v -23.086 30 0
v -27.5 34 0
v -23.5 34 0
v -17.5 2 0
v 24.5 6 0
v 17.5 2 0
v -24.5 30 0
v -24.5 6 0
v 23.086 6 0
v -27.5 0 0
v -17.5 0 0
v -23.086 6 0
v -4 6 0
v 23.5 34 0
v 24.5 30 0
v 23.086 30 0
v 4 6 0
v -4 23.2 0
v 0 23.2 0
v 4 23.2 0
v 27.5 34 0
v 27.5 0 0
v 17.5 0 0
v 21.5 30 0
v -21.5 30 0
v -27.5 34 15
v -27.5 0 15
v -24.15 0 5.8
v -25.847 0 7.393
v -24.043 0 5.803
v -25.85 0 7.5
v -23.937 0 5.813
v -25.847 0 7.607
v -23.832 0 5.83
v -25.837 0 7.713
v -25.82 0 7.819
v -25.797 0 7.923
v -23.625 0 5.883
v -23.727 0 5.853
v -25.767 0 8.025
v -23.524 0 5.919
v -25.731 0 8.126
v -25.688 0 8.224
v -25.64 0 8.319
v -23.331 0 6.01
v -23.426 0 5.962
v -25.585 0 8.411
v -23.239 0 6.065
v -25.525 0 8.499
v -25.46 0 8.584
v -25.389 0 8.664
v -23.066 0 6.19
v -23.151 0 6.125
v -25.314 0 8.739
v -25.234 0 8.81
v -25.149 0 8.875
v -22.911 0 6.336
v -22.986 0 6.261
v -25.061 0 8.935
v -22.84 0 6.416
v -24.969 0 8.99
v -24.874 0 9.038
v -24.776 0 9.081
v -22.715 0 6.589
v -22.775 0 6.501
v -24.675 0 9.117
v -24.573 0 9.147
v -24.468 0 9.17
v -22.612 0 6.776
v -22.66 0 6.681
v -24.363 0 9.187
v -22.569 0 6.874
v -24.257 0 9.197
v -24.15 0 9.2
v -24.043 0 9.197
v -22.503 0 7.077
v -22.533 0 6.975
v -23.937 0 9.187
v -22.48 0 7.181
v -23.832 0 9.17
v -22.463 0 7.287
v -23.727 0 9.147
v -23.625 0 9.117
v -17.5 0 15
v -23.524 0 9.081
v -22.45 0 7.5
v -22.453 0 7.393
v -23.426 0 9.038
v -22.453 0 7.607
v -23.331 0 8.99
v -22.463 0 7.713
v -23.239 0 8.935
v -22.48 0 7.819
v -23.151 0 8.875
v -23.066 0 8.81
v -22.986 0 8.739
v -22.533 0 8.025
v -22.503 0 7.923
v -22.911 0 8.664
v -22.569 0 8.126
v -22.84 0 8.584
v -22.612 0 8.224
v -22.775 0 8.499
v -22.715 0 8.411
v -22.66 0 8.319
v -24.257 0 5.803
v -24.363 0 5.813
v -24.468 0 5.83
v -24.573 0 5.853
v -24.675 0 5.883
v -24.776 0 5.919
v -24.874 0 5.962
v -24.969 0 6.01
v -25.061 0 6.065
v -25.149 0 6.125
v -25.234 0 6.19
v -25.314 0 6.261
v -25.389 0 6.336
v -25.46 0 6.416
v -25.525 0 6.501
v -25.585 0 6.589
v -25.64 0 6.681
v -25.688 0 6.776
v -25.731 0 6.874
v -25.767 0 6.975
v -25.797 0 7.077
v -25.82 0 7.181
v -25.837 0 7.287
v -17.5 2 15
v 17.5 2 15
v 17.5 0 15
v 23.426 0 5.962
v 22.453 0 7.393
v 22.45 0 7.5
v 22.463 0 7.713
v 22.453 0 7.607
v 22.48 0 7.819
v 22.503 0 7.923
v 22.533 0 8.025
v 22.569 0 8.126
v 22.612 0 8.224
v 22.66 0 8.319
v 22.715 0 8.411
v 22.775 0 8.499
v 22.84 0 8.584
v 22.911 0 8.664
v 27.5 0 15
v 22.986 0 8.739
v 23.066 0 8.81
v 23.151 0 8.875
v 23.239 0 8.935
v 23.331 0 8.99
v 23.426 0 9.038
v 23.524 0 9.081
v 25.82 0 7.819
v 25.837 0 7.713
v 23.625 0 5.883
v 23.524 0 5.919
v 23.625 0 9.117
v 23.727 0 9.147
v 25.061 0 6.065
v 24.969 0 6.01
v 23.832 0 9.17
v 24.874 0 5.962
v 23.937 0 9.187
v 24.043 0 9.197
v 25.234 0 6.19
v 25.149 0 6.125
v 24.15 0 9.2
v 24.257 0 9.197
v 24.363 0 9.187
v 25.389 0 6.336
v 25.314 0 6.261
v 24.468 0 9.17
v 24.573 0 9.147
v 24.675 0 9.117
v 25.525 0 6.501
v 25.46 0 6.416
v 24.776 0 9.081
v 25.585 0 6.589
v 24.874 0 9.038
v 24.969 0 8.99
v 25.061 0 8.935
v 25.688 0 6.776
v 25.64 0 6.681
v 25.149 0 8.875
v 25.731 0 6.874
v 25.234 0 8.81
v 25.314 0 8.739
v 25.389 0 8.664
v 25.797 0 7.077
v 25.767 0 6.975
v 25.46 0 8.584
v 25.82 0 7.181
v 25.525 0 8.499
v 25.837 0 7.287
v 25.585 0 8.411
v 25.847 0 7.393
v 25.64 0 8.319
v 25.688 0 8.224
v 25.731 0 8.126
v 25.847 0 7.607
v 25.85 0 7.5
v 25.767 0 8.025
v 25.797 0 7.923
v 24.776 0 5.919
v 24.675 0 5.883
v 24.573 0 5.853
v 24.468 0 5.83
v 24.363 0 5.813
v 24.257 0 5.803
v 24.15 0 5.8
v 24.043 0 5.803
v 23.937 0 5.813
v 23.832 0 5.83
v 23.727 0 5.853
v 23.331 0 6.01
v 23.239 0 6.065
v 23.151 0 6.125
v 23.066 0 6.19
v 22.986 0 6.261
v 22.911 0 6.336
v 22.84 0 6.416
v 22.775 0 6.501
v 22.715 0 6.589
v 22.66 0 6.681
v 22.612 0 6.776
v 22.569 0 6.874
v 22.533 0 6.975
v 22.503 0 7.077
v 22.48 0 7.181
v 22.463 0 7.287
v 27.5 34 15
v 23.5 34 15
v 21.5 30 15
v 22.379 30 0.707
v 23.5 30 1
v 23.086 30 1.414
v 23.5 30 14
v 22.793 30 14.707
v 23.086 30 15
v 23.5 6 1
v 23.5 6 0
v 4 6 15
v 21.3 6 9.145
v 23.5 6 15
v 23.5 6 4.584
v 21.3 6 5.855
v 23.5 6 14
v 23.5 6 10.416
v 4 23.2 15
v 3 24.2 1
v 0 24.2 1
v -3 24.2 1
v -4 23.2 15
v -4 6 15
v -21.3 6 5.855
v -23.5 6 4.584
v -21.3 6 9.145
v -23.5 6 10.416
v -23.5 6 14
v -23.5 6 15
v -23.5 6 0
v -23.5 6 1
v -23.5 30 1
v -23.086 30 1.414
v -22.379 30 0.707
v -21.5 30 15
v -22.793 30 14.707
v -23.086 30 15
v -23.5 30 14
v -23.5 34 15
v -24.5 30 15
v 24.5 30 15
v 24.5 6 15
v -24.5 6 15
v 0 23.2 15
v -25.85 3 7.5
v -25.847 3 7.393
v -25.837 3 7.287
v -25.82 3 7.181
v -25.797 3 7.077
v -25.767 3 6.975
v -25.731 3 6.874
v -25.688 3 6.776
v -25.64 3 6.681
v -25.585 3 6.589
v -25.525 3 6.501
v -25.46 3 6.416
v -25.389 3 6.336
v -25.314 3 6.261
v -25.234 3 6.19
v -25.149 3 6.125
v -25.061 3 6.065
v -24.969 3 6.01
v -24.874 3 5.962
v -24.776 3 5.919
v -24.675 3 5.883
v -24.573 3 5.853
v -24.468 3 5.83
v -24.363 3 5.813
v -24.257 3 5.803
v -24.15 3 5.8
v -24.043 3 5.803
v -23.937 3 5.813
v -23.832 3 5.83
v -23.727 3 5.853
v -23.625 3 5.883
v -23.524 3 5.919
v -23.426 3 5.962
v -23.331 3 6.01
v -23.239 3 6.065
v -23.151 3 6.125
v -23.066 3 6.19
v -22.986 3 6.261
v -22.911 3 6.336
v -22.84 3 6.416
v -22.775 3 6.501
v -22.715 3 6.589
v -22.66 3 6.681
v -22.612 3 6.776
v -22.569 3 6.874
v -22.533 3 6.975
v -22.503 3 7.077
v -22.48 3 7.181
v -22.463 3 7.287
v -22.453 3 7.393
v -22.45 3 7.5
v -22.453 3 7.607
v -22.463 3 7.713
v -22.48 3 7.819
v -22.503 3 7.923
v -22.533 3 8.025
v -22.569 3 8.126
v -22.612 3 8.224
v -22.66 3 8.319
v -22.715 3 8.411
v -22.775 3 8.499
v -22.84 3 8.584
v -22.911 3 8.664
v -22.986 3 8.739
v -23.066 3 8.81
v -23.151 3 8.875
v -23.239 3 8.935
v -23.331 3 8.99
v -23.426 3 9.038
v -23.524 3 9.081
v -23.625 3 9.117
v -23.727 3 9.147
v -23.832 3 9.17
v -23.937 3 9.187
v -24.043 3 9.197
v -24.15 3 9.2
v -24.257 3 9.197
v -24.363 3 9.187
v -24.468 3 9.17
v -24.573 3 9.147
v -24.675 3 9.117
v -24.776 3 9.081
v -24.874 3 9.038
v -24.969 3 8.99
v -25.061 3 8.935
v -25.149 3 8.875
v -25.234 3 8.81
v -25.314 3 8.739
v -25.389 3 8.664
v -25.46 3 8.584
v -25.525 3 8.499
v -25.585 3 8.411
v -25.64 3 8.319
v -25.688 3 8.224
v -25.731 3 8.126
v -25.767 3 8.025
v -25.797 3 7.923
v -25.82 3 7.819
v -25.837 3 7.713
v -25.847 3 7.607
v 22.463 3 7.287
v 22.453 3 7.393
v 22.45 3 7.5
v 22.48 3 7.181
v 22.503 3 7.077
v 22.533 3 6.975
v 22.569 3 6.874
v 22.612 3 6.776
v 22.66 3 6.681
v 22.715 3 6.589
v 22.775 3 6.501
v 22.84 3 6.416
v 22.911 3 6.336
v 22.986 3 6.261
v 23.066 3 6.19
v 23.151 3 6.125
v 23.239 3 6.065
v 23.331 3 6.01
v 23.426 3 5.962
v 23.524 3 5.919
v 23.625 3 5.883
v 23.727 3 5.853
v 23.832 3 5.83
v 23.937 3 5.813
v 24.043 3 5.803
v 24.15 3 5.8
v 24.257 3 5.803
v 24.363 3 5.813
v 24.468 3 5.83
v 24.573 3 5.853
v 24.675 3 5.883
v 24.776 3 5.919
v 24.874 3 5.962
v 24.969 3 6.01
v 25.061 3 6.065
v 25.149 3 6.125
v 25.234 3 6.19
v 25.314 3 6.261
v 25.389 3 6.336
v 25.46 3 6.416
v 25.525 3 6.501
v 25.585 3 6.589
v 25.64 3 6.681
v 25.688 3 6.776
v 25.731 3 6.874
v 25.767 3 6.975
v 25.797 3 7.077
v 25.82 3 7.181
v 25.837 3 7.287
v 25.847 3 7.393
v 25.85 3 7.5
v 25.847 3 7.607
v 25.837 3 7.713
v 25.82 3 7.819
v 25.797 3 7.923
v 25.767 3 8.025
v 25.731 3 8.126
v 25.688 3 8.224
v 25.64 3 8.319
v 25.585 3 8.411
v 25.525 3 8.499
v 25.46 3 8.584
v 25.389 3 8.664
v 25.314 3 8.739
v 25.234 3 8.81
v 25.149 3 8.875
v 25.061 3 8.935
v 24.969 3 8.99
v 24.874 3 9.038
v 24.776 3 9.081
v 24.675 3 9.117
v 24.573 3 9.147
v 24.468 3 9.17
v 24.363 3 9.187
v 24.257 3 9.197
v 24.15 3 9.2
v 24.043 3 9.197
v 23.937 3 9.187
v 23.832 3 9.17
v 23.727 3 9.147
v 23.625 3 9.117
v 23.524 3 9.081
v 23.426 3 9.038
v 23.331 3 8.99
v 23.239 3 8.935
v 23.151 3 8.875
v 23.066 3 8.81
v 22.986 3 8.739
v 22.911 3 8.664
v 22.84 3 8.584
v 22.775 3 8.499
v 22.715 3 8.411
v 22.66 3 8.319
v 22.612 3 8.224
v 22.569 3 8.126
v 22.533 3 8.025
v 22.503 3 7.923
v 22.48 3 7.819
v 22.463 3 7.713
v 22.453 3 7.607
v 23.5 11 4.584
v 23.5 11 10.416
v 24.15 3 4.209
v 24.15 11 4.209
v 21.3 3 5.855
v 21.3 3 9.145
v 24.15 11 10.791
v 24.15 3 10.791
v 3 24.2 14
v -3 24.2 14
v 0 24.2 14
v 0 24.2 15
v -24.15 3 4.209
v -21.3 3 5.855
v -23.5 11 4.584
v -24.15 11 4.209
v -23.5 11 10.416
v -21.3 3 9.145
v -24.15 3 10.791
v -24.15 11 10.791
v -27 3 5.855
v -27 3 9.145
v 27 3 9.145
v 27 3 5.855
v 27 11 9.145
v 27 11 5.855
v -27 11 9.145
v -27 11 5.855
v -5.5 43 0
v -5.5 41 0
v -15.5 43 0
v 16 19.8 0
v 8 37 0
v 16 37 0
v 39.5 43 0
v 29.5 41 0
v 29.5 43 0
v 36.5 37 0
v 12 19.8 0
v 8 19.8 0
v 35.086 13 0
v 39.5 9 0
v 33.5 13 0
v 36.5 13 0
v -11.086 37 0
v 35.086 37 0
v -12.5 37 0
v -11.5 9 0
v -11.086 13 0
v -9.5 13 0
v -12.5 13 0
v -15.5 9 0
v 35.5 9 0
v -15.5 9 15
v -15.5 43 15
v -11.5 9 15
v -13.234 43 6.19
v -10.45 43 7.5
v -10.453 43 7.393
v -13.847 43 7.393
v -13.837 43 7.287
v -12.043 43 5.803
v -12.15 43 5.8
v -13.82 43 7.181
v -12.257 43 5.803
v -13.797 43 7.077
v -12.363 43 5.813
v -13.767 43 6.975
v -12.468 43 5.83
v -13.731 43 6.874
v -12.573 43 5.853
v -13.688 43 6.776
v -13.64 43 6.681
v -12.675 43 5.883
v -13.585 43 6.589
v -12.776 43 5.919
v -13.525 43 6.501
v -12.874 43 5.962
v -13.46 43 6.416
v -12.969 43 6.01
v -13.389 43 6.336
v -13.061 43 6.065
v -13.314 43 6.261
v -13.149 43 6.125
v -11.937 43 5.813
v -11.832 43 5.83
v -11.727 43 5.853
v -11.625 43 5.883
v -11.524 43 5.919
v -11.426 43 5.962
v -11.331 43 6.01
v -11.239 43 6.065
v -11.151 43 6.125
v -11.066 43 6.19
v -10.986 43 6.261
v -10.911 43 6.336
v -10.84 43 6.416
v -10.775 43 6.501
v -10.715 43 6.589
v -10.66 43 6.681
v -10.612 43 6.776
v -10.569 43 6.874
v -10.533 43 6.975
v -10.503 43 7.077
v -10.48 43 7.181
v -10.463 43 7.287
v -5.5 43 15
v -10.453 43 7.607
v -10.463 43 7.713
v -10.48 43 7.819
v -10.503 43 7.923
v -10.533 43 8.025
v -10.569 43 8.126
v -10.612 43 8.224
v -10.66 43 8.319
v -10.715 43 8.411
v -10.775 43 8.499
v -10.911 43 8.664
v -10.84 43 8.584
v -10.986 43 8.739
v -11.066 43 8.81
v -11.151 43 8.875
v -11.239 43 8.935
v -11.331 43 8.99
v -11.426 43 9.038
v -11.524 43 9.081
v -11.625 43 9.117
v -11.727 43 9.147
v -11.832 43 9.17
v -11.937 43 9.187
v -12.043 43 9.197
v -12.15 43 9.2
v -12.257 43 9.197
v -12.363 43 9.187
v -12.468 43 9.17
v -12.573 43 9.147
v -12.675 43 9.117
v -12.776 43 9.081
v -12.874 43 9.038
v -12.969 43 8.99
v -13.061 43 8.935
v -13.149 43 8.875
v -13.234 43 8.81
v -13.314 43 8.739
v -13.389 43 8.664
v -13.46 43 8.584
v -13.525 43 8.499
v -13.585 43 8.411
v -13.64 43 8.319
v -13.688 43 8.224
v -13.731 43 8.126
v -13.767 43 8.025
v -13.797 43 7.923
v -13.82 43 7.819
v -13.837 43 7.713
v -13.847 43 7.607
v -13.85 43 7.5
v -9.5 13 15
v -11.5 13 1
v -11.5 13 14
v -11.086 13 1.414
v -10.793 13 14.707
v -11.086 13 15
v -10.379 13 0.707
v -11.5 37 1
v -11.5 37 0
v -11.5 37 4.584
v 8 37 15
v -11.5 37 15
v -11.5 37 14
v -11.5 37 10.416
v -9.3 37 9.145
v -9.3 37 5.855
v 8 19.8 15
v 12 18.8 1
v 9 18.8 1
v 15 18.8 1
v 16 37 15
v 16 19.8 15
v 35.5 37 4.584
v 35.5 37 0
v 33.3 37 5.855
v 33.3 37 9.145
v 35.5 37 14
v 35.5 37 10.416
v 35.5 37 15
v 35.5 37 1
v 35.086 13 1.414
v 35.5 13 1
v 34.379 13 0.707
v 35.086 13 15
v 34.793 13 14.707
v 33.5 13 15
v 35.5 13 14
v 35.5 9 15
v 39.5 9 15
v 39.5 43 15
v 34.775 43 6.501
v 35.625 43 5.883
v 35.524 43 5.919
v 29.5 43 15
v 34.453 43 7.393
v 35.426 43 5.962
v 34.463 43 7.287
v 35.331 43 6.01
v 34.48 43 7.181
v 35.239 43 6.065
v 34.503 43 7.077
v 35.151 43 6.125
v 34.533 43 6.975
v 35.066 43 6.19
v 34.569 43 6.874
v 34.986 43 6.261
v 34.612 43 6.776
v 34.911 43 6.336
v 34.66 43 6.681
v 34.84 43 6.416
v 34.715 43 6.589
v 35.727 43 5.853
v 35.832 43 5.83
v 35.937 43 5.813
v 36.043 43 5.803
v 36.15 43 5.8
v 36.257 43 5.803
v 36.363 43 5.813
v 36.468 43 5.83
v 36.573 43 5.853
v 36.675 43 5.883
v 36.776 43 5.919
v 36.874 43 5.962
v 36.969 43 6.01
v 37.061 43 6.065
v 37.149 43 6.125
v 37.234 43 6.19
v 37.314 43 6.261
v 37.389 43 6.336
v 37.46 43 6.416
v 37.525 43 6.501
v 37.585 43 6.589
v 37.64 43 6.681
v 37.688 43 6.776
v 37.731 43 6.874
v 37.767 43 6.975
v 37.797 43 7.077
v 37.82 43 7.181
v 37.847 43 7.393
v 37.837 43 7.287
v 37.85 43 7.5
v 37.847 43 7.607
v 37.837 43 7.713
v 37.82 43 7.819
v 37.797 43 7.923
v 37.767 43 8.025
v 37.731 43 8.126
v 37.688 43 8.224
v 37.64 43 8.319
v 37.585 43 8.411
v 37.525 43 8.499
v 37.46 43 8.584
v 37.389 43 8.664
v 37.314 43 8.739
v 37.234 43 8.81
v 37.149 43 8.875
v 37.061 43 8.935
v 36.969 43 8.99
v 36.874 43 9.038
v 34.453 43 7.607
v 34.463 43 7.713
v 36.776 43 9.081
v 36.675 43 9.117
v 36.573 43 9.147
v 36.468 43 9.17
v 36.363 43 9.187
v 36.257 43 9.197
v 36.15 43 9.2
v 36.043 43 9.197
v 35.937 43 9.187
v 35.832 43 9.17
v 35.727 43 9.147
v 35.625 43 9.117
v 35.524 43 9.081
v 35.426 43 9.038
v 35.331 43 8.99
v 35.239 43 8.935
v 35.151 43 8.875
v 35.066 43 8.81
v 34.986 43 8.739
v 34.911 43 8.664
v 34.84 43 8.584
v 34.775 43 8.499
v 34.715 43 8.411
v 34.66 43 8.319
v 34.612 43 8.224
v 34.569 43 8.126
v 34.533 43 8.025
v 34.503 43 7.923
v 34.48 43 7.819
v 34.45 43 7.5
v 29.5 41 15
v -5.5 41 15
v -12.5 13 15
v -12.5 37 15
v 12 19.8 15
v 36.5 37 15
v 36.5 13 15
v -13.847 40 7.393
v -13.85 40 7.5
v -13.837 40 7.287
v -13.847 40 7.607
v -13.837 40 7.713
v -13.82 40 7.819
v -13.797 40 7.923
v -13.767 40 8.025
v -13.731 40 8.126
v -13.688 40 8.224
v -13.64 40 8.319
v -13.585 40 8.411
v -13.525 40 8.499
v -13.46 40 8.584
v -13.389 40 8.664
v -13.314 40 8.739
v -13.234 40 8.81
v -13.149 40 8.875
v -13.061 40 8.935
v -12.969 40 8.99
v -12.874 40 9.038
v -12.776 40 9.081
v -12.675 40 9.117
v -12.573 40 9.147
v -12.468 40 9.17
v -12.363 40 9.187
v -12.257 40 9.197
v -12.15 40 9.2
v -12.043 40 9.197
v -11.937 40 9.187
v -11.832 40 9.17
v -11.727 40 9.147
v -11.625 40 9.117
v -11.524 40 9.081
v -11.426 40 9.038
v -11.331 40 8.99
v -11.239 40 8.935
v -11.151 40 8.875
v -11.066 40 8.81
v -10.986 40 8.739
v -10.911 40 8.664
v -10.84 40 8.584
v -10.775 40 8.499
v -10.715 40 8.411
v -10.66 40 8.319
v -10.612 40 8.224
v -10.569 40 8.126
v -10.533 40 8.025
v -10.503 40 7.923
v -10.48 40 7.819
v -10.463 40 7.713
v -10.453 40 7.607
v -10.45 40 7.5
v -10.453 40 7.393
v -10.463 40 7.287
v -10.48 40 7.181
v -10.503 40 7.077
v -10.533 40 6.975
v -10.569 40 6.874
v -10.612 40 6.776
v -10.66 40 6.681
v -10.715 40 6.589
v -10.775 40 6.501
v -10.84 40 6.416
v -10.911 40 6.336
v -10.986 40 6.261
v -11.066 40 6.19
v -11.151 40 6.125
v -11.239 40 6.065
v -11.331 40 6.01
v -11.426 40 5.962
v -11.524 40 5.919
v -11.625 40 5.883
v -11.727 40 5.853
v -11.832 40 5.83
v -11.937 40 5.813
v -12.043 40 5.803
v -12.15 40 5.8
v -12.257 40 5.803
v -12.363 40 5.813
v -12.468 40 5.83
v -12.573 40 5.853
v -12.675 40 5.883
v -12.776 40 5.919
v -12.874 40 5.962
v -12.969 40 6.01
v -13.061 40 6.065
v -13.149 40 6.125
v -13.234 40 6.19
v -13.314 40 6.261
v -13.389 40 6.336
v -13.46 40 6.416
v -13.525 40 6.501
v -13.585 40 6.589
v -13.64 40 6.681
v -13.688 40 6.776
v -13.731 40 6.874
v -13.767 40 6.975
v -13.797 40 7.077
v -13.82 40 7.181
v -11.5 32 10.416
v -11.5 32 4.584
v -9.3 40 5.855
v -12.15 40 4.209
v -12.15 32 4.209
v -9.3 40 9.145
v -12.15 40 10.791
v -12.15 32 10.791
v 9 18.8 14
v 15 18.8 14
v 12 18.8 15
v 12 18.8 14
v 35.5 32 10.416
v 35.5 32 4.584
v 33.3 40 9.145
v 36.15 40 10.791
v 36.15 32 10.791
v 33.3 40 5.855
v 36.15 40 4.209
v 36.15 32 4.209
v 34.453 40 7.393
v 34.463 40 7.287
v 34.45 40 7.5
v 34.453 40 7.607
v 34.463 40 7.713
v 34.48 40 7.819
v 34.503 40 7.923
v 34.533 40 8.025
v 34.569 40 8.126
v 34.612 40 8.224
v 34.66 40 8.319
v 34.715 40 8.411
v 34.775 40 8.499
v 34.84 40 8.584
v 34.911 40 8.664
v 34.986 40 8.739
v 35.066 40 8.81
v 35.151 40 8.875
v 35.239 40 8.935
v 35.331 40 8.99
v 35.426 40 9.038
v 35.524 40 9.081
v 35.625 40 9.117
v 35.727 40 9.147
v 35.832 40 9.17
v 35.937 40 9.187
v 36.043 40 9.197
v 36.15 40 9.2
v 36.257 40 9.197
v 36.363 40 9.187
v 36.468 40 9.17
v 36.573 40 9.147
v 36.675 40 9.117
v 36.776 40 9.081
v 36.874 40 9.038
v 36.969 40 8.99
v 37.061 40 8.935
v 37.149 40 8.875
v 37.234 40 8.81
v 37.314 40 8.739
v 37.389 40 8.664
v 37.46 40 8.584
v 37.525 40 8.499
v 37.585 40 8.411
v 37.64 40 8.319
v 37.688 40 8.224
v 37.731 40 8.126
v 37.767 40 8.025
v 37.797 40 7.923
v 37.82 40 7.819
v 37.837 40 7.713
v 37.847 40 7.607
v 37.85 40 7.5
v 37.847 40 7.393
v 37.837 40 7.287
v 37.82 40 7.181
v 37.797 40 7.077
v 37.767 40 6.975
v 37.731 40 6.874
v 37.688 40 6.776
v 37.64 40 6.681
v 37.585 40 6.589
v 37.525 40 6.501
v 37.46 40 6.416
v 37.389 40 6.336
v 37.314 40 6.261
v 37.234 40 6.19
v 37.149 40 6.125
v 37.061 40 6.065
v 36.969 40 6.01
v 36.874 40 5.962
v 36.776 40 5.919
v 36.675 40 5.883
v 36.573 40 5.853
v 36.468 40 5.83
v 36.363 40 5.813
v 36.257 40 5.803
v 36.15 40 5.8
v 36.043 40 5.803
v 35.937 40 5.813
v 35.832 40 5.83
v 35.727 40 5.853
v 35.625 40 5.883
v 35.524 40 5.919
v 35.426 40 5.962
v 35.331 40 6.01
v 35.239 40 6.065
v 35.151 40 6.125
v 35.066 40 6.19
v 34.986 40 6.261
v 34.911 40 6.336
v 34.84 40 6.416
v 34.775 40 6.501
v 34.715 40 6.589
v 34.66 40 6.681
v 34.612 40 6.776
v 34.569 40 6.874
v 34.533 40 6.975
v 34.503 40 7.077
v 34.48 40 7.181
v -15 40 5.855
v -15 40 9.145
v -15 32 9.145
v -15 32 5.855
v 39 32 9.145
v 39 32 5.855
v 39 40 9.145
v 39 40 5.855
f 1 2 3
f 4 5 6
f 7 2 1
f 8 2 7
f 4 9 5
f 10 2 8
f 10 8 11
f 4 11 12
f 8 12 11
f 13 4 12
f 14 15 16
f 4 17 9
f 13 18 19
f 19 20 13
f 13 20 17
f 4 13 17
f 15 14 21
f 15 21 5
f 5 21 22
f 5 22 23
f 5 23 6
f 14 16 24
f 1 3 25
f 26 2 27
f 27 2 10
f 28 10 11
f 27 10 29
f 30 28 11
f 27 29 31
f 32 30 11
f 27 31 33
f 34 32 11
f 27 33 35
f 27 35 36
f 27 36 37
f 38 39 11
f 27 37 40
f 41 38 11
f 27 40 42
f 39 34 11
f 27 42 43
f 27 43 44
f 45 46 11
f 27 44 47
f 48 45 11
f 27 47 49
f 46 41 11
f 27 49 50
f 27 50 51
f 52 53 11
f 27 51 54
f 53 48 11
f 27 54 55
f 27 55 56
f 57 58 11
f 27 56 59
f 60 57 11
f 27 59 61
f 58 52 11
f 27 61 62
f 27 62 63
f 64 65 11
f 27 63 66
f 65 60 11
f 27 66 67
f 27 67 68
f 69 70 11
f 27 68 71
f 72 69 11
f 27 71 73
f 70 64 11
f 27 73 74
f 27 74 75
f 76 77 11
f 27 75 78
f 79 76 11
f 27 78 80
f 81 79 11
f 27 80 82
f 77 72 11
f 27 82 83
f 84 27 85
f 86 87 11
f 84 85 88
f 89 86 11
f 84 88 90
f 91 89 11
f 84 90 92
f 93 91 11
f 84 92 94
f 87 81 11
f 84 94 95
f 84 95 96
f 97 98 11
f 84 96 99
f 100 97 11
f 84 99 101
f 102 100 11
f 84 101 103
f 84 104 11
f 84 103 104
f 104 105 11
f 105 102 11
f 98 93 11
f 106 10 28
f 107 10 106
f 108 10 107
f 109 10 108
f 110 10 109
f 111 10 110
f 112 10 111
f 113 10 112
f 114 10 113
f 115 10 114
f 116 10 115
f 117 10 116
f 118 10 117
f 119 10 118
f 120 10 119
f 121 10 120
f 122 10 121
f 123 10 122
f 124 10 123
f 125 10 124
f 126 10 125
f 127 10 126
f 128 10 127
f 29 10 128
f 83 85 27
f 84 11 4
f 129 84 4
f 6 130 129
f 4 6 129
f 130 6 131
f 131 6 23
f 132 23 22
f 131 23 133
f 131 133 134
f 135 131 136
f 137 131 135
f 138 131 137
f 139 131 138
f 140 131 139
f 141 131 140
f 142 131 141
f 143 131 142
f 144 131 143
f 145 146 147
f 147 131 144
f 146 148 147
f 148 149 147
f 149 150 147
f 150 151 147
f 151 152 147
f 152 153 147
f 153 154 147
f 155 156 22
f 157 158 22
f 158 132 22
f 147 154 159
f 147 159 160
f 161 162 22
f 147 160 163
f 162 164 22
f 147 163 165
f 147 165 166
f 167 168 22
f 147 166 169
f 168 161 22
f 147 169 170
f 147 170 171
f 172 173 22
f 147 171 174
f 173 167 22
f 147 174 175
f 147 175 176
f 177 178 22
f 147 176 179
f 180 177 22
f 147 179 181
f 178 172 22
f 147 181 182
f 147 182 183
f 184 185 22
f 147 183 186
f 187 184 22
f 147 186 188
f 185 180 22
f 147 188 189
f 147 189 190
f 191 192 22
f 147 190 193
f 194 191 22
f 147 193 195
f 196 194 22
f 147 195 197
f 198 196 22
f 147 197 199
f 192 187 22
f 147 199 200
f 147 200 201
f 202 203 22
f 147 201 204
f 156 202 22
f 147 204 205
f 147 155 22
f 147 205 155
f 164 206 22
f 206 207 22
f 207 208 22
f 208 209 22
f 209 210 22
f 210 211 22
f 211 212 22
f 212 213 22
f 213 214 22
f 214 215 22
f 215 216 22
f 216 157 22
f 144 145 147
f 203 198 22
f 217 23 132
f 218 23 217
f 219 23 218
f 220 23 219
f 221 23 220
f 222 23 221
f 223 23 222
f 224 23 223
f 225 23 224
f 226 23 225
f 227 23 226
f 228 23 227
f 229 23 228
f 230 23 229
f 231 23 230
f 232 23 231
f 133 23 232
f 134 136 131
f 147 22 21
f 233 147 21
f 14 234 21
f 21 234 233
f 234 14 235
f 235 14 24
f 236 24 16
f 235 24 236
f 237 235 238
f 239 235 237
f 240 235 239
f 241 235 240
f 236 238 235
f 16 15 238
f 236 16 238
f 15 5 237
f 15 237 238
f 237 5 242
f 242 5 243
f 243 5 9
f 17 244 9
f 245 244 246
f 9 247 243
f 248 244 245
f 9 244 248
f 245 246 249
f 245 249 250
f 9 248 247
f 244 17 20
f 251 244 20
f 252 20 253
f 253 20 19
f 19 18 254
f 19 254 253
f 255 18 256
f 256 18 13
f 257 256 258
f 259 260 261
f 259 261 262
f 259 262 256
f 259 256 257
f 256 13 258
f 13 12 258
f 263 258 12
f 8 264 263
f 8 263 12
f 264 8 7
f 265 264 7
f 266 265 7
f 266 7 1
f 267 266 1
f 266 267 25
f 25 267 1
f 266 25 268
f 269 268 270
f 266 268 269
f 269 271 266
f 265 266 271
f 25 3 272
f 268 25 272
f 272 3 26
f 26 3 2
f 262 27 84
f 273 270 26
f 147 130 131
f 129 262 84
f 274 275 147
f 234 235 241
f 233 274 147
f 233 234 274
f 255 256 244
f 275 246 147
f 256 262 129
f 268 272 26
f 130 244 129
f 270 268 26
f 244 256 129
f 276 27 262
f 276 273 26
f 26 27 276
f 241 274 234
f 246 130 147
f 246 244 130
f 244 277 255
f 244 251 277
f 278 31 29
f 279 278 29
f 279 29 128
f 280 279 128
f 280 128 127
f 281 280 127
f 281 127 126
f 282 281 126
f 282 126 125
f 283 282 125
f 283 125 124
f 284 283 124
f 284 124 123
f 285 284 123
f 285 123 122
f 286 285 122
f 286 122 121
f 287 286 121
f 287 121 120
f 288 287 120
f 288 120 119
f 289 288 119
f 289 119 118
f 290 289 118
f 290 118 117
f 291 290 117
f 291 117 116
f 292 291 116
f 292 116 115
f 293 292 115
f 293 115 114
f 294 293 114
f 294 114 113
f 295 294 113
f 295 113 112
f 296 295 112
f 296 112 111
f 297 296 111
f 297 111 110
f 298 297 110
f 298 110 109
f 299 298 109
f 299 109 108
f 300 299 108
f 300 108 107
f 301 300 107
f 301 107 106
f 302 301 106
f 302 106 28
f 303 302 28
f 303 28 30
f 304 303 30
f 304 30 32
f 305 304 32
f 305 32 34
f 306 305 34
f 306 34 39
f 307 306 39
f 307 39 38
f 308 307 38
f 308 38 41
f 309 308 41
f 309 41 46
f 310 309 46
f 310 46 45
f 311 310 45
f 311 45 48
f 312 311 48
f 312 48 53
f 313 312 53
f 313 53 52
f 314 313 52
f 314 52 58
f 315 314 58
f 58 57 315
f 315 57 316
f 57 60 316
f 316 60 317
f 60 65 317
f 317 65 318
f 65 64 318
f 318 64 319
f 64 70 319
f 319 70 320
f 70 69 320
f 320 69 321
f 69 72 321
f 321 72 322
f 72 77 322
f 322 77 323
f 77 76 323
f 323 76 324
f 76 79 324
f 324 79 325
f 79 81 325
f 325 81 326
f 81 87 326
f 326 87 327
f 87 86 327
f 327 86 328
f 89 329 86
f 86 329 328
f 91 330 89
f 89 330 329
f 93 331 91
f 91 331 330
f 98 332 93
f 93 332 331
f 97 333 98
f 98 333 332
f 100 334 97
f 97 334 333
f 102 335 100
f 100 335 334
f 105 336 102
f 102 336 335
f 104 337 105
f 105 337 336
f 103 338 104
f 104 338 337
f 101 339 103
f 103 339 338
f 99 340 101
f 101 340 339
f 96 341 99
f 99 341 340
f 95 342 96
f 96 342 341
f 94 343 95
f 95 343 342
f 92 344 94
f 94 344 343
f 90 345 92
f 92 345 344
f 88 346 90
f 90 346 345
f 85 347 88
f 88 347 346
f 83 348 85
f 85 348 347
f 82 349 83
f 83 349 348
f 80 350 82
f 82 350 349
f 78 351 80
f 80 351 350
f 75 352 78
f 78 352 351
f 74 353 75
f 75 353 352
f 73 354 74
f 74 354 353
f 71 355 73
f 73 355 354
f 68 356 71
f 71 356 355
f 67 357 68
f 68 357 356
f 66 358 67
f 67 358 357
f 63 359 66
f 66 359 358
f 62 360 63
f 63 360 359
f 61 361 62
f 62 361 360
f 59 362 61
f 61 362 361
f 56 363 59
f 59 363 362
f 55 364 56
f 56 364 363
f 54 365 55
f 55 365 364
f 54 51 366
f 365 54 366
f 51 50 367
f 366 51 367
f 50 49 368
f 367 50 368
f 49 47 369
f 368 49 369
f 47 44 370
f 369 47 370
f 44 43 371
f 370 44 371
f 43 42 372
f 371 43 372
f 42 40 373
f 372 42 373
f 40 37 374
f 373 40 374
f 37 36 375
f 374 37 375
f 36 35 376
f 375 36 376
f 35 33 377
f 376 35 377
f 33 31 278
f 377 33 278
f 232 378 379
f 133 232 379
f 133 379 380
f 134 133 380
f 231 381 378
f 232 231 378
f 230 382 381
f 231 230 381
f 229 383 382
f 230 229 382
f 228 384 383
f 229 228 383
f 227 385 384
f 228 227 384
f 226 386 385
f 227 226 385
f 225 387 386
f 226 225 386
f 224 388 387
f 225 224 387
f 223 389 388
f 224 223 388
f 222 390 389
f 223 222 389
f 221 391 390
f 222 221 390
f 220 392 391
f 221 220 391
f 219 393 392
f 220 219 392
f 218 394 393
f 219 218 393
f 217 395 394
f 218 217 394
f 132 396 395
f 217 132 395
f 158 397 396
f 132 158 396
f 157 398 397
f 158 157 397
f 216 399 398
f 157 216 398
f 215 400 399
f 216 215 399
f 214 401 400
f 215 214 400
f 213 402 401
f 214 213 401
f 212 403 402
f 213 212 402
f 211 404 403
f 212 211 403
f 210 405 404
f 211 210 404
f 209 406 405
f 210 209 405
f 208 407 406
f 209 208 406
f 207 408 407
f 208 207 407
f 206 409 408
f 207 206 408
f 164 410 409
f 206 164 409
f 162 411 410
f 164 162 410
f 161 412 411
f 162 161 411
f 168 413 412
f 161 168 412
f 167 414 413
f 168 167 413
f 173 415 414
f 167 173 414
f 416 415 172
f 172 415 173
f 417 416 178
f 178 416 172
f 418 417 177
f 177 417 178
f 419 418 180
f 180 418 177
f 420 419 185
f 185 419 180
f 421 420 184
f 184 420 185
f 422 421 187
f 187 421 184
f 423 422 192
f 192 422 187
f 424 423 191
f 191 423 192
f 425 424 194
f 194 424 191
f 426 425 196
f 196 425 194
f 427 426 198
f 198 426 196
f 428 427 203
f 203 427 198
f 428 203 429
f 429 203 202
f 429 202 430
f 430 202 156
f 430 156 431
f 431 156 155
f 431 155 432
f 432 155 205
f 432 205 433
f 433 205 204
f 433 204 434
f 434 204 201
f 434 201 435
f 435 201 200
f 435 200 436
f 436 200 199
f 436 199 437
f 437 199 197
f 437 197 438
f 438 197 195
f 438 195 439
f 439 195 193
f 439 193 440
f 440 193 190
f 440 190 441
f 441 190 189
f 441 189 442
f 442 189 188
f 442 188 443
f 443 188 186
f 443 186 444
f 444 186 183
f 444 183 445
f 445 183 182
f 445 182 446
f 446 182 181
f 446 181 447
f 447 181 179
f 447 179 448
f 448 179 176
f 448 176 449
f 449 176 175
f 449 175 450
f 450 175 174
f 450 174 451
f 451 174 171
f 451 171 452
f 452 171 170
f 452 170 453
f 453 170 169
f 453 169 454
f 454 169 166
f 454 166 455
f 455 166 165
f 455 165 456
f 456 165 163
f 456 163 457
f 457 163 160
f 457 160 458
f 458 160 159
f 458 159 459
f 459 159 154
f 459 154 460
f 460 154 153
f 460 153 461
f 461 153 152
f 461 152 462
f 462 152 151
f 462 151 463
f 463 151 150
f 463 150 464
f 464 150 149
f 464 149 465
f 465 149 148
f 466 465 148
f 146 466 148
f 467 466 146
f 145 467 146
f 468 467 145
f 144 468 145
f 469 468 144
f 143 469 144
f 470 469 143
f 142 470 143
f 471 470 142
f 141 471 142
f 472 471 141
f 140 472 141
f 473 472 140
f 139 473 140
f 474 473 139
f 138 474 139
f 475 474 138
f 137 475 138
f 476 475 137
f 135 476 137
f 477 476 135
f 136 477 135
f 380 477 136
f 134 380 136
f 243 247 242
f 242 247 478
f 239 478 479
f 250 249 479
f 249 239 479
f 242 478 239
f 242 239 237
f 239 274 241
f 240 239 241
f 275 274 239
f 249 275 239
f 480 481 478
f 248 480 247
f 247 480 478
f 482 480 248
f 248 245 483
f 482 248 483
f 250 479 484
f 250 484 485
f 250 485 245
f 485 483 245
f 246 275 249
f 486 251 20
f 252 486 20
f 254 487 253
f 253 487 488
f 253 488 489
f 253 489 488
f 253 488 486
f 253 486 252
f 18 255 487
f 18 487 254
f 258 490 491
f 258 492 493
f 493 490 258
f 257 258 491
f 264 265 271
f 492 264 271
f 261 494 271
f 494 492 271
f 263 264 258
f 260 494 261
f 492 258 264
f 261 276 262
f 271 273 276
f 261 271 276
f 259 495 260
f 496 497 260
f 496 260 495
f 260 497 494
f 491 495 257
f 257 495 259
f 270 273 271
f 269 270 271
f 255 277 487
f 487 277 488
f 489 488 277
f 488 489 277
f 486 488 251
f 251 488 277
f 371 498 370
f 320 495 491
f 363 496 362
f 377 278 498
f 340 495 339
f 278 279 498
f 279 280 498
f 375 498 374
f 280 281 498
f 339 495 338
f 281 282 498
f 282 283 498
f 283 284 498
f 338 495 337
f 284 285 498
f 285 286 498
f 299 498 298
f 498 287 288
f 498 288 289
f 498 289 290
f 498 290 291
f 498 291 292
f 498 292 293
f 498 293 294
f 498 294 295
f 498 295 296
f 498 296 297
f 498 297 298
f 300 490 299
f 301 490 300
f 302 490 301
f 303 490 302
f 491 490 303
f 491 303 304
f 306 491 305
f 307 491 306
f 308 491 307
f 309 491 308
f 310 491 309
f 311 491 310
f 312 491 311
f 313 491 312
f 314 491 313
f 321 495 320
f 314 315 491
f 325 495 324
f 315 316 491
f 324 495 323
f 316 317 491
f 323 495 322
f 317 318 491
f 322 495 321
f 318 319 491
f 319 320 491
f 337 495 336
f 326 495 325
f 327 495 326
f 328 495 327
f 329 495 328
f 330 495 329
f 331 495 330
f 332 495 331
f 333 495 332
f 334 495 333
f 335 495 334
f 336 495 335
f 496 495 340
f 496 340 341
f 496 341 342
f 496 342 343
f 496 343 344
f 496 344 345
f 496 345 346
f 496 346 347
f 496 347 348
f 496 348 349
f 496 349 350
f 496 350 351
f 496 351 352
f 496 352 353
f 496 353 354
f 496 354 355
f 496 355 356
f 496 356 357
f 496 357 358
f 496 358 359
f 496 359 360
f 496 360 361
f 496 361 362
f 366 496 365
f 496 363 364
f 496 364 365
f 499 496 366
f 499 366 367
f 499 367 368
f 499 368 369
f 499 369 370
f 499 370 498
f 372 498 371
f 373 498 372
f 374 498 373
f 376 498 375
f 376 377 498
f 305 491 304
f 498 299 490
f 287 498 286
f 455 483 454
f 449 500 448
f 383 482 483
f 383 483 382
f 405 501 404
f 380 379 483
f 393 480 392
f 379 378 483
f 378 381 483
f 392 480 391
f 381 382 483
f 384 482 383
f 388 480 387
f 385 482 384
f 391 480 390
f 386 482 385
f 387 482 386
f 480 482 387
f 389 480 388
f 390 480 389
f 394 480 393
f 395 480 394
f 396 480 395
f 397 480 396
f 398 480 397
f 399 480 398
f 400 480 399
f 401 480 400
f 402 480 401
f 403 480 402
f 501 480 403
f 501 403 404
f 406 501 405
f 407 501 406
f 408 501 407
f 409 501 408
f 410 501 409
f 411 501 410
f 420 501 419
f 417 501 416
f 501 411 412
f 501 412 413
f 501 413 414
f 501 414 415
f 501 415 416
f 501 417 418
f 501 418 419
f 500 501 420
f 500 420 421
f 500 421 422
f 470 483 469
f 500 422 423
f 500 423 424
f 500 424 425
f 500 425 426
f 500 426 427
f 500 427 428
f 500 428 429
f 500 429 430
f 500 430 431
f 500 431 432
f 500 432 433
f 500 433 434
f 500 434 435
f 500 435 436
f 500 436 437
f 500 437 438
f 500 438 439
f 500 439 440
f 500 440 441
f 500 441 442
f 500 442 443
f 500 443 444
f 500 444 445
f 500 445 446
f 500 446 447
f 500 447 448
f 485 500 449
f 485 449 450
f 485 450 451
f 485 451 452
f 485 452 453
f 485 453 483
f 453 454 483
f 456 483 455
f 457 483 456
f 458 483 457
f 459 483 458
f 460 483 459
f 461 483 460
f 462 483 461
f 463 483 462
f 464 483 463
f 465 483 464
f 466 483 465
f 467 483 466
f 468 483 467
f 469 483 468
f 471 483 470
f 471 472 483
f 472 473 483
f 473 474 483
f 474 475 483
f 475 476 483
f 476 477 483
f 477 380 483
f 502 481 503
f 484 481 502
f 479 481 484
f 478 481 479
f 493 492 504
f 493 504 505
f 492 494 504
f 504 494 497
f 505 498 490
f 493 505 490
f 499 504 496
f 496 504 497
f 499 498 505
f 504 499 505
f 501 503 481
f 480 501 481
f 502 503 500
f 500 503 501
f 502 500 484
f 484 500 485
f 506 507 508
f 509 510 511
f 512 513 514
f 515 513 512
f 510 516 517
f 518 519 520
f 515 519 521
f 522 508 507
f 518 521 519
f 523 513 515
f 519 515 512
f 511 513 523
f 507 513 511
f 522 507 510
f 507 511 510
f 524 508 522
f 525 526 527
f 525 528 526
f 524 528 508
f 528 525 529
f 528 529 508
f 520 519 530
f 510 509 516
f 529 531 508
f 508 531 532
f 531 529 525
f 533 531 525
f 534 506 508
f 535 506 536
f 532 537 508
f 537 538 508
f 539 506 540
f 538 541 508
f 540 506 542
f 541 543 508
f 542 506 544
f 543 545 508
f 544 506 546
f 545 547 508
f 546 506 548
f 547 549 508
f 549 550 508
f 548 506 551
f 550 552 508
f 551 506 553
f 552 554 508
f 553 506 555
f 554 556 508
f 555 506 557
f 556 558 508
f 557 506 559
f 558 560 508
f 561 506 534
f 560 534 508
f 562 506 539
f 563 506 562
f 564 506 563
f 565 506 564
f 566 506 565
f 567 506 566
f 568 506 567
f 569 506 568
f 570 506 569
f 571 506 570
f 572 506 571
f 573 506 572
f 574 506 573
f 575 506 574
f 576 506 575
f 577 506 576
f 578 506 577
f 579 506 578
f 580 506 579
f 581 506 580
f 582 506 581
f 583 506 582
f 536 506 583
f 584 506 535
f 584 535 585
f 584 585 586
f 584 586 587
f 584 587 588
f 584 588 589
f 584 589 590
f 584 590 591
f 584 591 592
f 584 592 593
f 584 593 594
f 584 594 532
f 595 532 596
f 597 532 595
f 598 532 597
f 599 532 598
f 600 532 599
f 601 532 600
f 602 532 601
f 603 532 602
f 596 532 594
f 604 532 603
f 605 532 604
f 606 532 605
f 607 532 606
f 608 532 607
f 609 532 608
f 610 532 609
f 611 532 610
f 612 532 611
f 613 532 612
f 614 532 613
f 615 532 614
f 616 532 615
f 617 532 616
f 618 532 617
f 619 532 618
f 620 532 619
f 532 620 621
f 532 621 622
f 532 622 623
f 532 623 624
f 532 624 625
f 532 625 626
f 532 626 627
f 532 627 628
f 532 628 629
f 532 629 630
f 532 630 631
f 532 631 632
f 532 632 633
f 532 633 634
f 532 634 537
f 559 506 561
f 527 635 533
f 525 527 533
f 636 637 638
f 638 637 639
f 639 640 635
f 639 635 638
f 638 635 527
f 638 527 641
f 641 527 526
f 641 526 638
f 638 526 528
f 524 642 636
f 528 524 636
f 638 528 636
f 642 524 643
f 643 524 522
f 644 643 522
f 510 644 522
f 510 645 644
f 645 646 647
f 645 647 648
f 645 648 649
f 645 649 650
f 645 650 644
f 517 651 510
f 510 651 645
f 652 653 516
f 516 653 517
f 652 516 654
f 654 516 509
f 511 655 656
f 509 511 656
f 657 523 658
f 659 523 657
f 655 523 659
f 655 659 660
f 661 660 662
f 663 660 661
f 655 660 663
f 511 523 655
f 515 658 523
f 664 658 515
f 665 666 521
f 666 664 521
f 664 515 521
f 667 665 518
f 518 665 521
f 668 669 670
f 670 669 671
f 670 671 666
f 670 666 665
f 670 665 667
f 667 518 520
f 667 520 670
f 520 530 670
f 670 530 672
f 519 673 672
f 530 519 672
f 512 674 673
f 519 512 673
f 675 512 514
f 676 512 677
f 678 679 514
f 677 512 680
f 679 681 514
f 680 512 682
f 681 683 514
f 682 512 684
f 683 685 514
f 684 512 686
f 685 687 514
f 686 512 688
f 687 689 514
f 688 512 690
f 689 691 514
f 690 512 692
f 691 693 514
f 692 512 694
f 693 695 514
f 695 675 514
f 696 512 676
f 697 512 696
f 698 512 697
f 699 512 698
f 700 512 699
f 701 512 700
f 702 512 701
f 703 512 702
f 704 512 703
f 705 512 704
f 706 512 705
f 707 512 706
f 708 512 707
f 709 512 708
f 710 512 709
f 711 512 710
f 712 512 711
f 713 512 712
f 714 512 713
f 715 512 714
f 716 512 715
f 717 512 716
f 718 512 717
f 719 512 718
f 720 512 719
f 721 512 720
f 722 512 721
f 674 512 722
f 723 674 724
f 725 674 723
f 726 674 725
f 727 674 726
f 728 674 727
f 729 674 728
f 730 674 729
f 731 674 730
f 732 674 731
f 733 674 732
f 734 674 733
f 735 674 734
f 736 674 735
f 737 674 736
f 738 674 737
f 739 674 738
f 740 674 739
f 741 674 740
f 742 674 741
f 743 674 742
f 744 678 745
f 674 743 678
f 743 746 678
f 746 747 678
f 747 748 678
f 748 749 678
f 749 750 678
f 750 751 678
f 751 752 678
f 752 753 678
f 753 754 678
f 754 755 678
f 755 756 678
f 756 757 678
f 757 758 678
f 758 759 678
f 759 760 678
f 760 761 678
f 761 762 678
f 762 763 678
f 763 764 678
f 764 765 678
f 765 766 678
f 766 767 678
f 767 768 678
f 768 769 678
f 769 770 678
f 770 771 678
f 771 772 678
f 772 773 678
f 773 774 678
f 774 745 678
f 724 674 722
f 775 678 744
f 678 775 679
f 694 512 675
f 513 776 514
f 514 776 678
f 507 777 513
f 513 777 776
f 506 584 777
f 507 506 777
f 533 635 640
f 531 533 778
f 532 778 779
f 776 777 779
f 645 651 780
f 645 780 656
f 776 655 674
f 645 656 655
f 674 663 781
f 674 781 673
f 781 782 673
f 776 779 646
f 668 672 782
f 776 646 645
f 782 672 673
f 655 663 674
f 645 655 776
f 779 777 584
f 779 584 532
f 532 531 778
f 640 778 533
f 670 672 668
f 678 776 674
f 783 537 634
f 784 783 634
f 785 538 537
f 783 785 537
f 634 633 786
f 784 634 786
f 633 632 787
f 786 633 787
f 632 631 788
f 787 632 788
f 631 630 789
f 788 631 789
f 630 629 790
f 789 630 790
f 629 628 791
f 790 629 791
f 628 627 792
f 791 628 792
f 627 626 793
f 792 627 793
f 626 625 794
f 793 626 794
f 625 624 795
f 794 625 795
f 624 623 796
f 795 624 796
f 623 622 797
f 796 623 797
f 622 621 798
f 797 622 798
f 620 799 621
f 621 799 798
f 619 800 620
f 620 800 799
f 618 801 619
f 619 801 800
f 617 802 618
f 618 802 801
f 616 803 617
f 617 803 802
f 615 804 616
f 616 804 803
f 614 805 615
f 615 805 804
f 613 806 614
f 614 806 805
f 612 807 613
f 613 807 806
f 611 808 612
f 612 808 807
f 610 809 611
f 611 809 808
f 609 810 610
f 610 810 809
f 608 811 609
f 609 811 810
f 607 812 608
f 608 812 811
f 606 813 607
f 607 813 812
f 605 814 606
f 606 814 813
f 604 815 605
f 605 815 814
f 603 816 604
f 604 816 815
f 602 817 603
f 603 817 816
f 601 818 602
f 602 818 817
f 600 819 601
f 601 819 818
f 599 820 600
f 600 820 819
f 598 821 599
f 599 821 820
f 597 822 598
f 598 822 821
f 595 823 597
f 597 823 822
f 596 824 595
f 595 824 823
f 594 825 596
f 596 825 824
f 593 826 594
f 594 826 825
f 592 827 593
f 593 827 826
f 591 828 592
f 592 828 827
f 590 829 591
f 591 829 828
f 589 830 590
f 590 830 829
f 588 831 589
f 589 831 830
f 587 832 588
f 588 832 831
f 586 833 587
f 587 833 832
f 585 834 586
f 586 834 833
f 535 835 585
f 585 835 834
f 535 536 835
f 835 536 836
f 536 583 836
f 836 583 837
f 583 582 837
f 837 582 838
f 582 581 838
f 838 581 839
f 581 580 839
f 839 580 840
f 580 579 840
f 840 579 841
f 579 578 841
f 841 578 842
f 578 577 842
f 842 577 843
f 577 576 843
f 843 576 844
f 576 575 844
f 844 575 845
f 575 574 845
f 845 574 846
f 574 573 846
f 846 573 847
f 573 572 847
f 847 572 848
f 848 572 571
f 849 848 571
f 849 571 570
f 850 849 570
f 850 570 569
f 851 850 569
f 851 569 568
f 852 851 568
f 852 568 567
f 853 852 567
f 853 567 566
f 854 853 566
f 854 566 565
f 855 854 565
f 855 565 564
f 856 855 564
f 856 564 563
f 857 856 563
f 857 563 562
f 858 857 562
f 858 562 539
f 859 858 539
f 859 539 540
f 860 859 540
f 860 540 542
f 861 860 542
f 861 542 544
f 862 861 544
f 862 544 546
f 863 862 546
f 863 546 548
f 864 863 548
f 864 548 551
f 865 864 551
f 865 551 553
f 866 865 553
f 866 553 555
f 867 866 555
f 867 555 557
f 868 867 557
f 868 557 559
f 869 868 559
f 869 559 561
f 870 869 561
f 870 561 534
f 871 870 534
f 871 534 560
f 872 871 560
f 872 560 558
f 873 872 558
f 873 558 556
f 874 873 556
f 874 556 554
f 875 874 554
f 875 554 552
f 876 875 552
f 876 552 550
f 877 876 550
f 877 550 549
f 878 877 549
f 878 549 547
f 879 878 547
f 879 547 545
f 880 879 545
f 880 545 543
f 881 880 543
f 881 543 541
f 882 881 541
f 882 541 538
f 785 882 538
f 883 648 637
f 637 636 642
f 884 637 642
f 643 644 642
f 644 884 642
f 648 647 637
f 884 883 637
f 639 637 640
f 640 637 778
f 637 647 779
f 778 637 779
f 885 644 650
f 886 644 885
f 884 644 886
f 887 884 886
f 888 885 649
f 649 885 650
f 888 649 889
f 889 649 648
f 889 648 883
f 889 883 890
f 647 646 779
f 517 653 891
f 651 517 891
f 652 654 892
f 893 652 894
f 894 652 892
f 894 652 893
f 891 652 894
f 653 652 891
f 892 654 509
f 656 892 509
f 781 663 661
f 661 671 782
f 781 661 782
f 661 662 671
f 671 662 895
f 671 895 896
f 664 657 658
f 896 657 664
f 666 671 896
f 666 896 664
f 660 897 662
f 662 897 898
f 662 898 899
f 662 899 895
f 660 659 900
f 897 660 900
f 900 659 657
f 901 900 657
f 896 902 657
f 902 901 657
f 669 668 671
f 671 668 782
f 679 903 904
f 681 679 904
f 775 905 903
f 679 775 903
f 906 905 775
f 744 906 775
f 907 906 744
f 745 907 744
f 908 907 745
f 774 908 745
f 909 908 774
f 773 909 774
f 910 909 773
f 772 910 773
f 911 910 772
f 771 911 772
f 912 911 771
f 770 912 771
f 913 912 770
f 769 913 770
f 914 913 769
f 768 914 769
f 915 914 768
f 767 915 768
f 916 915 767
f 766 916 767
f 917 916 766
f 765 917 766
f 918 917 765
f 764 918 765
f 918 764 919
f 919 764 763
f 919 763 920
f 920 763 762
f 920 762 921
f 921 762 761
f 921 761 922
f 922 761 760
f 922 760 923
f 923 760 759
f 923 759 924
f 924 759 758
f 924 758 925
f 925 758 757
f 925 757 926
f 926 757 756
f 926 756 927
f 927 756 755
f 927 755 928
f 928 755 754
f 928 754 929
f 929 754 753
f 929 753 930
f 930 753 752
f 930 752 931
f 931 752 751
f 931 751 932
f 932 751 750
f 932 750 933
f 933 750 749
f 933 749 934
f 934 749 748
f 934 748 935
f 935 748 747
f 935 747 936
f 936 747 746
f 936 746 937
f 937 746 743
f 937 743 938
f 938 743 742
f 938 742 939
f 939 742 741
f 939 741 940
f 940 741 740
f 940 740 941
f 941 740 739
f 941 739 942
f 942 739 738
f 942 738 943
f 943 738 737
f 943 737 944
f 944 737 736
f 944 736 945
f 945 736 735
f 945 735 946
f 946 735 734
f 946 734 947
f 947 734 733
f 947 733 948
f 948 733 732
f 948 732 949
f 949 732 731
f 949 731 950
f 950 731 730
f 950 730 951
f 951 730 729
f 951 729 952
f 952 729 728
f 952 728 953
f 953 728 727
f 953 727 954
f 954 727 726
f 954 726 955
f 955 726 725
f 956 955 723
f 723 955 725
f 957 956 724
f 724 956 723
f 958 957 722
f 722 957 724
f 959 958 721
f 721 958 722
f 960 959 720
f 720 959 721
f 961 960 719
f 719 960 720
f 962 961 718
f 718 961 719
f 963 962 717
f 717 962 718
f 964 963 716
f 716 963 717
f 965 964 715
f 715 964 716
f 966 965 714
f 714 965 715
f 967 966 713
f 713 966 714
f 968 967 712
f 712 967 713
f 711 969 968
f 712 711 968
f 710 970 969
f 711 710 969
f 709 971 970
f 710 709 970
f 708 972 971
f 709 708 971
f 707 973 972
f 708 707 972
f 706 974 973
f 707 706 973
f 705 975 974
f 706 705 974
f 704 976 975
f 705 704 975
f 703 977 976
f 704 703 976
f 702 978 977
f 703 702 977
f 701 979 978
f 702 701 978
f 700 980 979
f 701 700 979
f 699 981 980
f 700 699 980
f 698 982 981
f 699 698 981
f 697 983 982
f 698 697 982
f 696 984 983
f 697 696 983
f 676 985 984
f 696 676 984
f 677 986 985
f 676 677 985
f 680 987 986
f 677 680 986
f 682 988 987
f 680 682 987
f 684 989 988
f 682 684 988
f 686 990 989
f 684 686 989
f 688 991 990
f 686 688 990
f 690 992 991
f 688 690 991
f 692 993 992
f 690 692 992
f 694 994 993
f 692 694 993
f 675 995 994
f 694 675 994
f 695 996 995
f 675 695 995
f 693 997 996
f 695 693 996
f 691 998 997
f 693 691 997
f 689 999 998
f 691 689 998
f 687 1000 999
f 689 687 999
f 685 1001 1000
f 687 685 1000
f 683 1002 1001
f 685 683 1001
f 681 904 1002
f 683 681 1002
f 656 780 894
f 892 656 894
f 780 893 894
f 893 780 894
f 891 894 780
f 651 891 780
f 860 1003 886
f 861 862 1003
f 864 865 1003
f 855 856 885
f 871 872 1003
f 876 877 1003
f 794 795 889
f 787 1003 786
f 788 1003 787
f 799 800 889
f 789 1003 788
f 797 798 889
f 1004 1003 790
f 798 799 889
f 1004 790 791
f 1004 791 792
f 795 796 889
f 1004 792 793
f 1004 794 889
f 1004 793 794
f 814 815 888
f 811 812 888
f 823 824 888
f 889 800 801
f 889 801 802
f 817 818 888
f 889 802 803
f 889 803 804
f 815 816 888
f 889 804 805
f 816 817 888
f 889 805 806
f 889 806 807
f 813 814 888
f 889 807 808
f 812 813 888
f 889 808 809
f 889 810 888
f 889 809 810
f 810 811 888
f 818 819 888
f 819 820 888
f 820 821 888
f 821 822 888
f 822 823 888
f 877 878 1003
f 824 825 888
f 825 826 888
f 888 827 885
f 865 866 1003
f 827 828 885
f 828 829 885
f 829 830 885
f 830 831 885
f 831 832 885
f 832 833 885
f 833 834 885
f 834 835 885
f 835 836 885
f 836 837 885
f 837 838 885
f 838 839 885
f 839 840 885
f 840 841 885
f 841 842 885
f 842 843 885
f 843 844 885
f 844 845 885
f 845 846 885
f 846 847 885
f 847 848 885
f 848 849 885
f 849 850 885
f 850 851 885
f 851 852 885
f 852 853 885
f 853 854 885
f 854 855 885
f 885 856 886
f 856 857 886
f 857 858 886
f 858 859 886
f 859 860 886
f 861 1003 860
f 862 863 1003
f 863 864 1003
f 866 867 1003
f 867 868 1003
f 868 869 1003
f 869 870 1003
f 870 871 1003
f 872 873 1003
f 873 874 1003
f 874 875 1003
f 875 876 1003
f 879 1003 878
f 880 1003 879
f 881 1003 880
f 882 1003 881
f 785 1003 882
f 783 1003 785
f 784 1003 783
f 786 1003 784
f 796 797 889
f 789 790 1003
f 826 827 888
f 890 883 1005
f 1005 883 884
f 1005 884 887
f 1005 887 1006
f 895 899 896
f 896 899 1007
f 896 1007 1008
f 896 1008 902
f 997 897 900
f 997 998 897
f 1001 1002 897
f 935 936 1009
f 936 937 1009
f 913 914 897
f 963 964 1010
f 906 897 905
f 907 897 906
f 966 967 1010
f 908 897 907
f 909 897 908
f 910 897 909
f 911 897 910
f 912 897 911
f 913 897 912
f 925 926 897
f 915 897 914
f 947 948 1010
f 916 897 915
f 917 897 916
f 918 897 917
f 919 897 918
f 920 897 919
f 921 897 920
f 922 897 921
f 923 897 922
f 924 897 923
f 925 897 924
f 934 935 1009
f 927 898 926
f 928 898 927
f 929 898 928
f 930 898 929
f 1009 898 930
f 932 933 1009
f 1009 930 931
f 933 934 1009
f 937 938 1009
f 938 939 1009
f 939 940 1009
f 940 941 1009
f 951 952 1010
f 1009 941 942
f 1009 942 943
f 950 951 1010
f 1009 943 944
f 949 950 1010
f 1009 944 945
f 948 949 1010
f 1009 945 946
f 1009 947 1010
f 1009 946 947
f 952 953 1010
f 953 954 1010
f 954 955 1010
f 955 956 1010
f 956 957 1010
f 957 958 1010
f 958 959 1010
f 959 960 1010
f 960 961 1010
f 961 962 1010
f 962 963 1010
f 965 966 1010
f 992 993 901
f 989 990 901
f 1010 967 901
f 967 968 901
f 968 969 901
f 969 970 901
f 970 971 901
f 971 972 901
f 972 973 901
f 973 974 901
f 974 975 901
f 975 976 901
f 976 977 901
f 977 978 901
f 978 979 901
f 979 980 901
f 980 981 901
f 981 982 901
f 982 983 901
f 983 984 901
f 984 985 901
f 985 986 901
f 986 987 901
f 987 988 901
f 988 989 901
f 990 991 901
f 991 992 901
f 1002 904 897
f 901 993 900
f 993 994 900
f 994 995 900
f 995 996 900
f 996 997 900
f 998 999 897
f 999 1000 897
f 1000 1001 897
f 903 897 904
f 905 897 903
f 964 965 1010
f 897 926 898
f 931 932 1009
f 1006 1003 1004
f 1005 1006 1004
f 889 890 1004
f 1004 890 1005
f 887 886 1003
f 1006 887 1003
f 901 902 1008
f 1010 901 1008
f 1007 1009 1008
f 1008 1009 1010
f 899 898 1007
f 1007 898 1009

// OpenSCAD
// Created from Code_Clip_RAMPS.stl
// https://github.com/Mecan0/Code
// By J.Rodigo (www.jra.so)
// Licence Creative commons atribution & share alike.

// Media Pieza
module mpieza(){
	cube([27.5, 6, 15]);
	
	cube([4, 24.2, 15]);

	translate([23.5, 0, 0])
	cube([4, 34, 15]);

	translate([21.5, 30, 0])
	cube([6, 4, 15]);
}

// Operaciones para media pieza
module moperaciones(){

	translate([0, -1, -1])
	cube([17.5, 3, 17]);

	translate([24.15, 7, 7.5])
	rotate( 90, [1, 0, 0])
	union() {
		hexagono(5.7, 8);
		cylinder(h = 8, r = 1.7, $fn=100);
	}
   
	// Chaflanes del centro
	translate([3, 24.2, -1])
	rotate( -45 ,[0, 0, 1])
	cube([2, 1, 17]);

	translate([0, 23.2, 15])
	rotate( 90 ,[0, 1, 0])
	rotate( 45 ,[0, 0, 1])
	cube([2, 1, 4]);

	translate([0, 23.2, 0])
	rotate( 90 ,[0, 1, 0])
	rotate( 45 ,[0, 0, 1])
	cube([1, 2, 4]);

	// Chaflanes del extremo (duro)!!
	translate([21.5, 30, -1])
	rotate( 63.43 ,[0, 0, 1])
	cube([5, 2, 17]);

	translate([23.5, 30, 14])
	rotate( 90 ,[1, 0, 0])
	rotate( 45 ,[0, 0, 1])
	cube([2, 1, 24]);

	translate([24.5, 30, 0])
	rotate( 90 ,[1, 0, 0])
	rotate( 135 ,[0, 0, 1])
	cube([2, 1, 24]);
}

// Generar un hexágono circunscrito (Diametro,altura) 
module hexagono(d,h,c){ 
	for (a = [0, 60,120]){ 
		rotate( a, [0, 0, 1])
		cube([d, d*tan(30), h], center = true);
	}
}

// Creamos la pieza y las operaciones
module pieza(){
	difference () {
		union() {
			mpieza();
			mirror([ 1, 0, 0 ])
			mpieza();
		}	
		union() {
			moperaciones();
			mirror([ 1, 0, 0 ])
			moperaciones();
		}	
	}
}

// Generamos una pieza
pieza();

// Generamos otra pieza desplazada y simétrica
translate([12, 43, 0])
mirror([ 0, 1, 0 ])
pieza();
